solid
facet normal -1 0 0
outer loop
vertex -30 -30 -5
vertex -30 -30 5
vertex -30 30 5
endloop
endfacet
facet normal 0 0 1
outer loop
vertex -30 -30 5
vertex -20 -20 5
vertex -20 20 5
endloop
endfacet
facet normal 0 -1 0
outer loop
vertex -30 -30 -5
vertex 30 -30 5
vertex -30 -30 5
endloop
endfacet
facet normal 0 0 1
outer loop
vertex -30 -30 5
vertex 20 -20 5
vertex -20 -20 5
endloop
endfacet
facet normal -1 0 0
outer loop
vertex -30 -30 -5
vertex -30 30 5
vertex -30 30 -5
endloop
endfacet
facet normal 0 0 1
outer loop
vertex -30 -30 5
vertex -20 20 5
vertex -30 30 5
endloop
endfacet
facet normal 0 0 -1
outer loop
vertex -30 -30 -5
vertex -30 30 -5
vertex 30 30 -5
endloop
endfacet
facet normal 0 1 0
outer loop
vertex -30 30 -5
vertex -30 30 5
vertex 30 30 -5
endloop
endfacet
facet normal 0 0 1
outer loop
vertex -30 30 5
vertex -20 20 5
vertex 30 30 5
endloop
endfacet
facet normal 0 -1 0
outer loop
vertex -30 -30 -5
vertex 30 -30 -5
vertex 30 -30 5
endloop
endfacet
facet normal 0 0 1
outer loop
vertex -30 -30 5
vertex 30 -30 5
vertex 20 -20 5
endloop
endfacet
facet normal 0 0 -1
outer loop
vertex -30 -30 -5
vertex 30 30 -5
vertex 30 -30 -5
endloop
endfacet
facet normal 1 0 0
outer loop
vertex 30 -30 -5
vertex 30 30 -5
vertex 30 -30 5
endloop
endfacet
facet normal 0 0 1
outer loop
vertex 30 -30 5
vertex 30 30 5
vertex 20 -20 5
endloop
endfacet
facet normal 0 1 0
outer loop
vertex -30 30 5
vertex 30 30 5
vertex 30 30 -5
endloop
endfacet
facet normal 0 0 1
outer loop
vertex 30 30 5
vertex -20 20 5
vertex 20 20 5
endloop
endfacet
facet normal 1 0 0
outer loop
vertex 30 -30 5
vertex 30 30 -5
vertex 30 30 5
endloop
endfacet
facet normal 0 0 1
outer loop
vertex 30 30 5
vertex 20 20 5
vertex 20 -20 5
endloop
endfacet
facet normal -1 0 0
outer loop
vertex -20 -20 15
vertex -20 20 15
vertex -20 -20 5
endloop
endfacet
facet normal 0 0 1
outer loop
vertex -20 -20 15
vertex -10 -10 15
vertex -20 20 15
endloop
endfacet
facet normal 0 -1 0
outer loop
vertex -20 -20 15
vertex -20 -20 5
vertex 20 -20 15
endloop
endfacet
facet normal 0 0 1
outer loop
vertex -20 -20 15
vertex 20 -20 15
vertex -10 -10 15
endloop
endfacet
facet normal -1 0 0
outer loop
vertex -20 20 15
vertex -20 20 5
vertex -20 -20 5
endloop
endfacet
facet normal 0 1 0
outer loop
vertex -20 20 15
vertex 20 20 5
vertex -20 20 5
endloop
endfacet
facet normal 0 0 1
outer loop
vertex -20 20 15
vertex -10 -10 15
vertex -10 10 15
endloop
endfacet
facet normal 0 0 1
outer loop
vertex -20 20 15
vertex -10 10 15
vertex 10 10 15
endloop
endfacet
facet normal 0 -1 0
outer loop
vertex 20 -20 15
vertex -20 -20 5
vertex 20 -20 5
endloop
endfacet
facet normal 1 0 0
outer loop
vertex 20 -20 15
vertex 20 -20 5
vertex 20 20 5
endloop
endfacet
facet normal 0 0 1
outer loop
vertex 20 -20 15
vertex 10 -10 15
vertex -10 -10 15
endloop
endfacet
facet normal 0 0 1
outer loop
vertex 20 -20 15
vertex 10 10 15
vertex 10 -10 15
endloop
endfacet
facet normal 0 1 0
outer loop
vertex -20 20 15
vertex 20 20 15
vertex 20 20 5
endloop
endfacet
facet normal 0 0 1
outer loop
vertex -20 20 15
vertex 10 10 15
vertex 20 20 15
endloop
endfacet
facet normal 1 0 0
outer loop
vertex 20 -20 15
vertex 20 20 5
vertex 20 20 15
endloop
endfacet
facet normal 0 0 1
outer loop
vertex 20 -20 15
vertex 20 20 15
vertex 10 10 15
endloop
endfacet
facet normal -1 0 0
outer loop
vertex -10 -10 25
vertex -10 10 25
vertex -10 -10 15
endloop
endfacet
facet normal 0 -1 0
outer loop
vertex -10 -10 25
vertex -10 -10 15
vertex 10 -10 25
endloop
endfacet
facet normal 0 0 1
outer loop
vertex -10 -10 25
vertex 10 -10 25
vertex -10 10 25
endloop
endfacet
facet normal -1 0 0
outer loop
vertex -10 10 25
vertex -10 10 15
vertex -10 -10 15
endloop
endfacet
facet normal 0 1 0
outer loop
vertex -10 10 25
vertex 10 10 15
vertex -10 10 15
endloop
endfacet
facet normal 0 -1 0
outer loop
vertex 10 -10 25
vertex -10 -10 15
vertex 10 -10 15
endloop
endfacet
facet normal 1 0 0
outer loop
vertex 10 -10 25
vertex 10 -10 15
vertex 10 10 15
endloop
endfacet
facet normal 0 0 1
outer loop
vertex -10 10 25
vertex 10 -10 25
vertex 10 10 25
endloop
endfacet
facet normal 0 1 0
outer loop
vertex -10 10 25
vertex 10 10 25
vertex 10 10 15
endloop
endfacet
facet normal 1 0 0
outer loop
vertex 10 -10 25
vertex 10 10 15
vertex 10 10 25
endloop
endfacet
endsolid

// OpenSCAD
// 3段階段状ピラミッド

// 1段目 60x60x10
translate([0, 0, 0])
    cube([60, 60, 10], center=true);

// 2段目 40x40x10
translate([0, 0, 10])
    cube([40, 40, 10], center=true);

// 3段目 20x20x10
translate([0, 0, 20])
    cube([20, 20, 10], center=true);
